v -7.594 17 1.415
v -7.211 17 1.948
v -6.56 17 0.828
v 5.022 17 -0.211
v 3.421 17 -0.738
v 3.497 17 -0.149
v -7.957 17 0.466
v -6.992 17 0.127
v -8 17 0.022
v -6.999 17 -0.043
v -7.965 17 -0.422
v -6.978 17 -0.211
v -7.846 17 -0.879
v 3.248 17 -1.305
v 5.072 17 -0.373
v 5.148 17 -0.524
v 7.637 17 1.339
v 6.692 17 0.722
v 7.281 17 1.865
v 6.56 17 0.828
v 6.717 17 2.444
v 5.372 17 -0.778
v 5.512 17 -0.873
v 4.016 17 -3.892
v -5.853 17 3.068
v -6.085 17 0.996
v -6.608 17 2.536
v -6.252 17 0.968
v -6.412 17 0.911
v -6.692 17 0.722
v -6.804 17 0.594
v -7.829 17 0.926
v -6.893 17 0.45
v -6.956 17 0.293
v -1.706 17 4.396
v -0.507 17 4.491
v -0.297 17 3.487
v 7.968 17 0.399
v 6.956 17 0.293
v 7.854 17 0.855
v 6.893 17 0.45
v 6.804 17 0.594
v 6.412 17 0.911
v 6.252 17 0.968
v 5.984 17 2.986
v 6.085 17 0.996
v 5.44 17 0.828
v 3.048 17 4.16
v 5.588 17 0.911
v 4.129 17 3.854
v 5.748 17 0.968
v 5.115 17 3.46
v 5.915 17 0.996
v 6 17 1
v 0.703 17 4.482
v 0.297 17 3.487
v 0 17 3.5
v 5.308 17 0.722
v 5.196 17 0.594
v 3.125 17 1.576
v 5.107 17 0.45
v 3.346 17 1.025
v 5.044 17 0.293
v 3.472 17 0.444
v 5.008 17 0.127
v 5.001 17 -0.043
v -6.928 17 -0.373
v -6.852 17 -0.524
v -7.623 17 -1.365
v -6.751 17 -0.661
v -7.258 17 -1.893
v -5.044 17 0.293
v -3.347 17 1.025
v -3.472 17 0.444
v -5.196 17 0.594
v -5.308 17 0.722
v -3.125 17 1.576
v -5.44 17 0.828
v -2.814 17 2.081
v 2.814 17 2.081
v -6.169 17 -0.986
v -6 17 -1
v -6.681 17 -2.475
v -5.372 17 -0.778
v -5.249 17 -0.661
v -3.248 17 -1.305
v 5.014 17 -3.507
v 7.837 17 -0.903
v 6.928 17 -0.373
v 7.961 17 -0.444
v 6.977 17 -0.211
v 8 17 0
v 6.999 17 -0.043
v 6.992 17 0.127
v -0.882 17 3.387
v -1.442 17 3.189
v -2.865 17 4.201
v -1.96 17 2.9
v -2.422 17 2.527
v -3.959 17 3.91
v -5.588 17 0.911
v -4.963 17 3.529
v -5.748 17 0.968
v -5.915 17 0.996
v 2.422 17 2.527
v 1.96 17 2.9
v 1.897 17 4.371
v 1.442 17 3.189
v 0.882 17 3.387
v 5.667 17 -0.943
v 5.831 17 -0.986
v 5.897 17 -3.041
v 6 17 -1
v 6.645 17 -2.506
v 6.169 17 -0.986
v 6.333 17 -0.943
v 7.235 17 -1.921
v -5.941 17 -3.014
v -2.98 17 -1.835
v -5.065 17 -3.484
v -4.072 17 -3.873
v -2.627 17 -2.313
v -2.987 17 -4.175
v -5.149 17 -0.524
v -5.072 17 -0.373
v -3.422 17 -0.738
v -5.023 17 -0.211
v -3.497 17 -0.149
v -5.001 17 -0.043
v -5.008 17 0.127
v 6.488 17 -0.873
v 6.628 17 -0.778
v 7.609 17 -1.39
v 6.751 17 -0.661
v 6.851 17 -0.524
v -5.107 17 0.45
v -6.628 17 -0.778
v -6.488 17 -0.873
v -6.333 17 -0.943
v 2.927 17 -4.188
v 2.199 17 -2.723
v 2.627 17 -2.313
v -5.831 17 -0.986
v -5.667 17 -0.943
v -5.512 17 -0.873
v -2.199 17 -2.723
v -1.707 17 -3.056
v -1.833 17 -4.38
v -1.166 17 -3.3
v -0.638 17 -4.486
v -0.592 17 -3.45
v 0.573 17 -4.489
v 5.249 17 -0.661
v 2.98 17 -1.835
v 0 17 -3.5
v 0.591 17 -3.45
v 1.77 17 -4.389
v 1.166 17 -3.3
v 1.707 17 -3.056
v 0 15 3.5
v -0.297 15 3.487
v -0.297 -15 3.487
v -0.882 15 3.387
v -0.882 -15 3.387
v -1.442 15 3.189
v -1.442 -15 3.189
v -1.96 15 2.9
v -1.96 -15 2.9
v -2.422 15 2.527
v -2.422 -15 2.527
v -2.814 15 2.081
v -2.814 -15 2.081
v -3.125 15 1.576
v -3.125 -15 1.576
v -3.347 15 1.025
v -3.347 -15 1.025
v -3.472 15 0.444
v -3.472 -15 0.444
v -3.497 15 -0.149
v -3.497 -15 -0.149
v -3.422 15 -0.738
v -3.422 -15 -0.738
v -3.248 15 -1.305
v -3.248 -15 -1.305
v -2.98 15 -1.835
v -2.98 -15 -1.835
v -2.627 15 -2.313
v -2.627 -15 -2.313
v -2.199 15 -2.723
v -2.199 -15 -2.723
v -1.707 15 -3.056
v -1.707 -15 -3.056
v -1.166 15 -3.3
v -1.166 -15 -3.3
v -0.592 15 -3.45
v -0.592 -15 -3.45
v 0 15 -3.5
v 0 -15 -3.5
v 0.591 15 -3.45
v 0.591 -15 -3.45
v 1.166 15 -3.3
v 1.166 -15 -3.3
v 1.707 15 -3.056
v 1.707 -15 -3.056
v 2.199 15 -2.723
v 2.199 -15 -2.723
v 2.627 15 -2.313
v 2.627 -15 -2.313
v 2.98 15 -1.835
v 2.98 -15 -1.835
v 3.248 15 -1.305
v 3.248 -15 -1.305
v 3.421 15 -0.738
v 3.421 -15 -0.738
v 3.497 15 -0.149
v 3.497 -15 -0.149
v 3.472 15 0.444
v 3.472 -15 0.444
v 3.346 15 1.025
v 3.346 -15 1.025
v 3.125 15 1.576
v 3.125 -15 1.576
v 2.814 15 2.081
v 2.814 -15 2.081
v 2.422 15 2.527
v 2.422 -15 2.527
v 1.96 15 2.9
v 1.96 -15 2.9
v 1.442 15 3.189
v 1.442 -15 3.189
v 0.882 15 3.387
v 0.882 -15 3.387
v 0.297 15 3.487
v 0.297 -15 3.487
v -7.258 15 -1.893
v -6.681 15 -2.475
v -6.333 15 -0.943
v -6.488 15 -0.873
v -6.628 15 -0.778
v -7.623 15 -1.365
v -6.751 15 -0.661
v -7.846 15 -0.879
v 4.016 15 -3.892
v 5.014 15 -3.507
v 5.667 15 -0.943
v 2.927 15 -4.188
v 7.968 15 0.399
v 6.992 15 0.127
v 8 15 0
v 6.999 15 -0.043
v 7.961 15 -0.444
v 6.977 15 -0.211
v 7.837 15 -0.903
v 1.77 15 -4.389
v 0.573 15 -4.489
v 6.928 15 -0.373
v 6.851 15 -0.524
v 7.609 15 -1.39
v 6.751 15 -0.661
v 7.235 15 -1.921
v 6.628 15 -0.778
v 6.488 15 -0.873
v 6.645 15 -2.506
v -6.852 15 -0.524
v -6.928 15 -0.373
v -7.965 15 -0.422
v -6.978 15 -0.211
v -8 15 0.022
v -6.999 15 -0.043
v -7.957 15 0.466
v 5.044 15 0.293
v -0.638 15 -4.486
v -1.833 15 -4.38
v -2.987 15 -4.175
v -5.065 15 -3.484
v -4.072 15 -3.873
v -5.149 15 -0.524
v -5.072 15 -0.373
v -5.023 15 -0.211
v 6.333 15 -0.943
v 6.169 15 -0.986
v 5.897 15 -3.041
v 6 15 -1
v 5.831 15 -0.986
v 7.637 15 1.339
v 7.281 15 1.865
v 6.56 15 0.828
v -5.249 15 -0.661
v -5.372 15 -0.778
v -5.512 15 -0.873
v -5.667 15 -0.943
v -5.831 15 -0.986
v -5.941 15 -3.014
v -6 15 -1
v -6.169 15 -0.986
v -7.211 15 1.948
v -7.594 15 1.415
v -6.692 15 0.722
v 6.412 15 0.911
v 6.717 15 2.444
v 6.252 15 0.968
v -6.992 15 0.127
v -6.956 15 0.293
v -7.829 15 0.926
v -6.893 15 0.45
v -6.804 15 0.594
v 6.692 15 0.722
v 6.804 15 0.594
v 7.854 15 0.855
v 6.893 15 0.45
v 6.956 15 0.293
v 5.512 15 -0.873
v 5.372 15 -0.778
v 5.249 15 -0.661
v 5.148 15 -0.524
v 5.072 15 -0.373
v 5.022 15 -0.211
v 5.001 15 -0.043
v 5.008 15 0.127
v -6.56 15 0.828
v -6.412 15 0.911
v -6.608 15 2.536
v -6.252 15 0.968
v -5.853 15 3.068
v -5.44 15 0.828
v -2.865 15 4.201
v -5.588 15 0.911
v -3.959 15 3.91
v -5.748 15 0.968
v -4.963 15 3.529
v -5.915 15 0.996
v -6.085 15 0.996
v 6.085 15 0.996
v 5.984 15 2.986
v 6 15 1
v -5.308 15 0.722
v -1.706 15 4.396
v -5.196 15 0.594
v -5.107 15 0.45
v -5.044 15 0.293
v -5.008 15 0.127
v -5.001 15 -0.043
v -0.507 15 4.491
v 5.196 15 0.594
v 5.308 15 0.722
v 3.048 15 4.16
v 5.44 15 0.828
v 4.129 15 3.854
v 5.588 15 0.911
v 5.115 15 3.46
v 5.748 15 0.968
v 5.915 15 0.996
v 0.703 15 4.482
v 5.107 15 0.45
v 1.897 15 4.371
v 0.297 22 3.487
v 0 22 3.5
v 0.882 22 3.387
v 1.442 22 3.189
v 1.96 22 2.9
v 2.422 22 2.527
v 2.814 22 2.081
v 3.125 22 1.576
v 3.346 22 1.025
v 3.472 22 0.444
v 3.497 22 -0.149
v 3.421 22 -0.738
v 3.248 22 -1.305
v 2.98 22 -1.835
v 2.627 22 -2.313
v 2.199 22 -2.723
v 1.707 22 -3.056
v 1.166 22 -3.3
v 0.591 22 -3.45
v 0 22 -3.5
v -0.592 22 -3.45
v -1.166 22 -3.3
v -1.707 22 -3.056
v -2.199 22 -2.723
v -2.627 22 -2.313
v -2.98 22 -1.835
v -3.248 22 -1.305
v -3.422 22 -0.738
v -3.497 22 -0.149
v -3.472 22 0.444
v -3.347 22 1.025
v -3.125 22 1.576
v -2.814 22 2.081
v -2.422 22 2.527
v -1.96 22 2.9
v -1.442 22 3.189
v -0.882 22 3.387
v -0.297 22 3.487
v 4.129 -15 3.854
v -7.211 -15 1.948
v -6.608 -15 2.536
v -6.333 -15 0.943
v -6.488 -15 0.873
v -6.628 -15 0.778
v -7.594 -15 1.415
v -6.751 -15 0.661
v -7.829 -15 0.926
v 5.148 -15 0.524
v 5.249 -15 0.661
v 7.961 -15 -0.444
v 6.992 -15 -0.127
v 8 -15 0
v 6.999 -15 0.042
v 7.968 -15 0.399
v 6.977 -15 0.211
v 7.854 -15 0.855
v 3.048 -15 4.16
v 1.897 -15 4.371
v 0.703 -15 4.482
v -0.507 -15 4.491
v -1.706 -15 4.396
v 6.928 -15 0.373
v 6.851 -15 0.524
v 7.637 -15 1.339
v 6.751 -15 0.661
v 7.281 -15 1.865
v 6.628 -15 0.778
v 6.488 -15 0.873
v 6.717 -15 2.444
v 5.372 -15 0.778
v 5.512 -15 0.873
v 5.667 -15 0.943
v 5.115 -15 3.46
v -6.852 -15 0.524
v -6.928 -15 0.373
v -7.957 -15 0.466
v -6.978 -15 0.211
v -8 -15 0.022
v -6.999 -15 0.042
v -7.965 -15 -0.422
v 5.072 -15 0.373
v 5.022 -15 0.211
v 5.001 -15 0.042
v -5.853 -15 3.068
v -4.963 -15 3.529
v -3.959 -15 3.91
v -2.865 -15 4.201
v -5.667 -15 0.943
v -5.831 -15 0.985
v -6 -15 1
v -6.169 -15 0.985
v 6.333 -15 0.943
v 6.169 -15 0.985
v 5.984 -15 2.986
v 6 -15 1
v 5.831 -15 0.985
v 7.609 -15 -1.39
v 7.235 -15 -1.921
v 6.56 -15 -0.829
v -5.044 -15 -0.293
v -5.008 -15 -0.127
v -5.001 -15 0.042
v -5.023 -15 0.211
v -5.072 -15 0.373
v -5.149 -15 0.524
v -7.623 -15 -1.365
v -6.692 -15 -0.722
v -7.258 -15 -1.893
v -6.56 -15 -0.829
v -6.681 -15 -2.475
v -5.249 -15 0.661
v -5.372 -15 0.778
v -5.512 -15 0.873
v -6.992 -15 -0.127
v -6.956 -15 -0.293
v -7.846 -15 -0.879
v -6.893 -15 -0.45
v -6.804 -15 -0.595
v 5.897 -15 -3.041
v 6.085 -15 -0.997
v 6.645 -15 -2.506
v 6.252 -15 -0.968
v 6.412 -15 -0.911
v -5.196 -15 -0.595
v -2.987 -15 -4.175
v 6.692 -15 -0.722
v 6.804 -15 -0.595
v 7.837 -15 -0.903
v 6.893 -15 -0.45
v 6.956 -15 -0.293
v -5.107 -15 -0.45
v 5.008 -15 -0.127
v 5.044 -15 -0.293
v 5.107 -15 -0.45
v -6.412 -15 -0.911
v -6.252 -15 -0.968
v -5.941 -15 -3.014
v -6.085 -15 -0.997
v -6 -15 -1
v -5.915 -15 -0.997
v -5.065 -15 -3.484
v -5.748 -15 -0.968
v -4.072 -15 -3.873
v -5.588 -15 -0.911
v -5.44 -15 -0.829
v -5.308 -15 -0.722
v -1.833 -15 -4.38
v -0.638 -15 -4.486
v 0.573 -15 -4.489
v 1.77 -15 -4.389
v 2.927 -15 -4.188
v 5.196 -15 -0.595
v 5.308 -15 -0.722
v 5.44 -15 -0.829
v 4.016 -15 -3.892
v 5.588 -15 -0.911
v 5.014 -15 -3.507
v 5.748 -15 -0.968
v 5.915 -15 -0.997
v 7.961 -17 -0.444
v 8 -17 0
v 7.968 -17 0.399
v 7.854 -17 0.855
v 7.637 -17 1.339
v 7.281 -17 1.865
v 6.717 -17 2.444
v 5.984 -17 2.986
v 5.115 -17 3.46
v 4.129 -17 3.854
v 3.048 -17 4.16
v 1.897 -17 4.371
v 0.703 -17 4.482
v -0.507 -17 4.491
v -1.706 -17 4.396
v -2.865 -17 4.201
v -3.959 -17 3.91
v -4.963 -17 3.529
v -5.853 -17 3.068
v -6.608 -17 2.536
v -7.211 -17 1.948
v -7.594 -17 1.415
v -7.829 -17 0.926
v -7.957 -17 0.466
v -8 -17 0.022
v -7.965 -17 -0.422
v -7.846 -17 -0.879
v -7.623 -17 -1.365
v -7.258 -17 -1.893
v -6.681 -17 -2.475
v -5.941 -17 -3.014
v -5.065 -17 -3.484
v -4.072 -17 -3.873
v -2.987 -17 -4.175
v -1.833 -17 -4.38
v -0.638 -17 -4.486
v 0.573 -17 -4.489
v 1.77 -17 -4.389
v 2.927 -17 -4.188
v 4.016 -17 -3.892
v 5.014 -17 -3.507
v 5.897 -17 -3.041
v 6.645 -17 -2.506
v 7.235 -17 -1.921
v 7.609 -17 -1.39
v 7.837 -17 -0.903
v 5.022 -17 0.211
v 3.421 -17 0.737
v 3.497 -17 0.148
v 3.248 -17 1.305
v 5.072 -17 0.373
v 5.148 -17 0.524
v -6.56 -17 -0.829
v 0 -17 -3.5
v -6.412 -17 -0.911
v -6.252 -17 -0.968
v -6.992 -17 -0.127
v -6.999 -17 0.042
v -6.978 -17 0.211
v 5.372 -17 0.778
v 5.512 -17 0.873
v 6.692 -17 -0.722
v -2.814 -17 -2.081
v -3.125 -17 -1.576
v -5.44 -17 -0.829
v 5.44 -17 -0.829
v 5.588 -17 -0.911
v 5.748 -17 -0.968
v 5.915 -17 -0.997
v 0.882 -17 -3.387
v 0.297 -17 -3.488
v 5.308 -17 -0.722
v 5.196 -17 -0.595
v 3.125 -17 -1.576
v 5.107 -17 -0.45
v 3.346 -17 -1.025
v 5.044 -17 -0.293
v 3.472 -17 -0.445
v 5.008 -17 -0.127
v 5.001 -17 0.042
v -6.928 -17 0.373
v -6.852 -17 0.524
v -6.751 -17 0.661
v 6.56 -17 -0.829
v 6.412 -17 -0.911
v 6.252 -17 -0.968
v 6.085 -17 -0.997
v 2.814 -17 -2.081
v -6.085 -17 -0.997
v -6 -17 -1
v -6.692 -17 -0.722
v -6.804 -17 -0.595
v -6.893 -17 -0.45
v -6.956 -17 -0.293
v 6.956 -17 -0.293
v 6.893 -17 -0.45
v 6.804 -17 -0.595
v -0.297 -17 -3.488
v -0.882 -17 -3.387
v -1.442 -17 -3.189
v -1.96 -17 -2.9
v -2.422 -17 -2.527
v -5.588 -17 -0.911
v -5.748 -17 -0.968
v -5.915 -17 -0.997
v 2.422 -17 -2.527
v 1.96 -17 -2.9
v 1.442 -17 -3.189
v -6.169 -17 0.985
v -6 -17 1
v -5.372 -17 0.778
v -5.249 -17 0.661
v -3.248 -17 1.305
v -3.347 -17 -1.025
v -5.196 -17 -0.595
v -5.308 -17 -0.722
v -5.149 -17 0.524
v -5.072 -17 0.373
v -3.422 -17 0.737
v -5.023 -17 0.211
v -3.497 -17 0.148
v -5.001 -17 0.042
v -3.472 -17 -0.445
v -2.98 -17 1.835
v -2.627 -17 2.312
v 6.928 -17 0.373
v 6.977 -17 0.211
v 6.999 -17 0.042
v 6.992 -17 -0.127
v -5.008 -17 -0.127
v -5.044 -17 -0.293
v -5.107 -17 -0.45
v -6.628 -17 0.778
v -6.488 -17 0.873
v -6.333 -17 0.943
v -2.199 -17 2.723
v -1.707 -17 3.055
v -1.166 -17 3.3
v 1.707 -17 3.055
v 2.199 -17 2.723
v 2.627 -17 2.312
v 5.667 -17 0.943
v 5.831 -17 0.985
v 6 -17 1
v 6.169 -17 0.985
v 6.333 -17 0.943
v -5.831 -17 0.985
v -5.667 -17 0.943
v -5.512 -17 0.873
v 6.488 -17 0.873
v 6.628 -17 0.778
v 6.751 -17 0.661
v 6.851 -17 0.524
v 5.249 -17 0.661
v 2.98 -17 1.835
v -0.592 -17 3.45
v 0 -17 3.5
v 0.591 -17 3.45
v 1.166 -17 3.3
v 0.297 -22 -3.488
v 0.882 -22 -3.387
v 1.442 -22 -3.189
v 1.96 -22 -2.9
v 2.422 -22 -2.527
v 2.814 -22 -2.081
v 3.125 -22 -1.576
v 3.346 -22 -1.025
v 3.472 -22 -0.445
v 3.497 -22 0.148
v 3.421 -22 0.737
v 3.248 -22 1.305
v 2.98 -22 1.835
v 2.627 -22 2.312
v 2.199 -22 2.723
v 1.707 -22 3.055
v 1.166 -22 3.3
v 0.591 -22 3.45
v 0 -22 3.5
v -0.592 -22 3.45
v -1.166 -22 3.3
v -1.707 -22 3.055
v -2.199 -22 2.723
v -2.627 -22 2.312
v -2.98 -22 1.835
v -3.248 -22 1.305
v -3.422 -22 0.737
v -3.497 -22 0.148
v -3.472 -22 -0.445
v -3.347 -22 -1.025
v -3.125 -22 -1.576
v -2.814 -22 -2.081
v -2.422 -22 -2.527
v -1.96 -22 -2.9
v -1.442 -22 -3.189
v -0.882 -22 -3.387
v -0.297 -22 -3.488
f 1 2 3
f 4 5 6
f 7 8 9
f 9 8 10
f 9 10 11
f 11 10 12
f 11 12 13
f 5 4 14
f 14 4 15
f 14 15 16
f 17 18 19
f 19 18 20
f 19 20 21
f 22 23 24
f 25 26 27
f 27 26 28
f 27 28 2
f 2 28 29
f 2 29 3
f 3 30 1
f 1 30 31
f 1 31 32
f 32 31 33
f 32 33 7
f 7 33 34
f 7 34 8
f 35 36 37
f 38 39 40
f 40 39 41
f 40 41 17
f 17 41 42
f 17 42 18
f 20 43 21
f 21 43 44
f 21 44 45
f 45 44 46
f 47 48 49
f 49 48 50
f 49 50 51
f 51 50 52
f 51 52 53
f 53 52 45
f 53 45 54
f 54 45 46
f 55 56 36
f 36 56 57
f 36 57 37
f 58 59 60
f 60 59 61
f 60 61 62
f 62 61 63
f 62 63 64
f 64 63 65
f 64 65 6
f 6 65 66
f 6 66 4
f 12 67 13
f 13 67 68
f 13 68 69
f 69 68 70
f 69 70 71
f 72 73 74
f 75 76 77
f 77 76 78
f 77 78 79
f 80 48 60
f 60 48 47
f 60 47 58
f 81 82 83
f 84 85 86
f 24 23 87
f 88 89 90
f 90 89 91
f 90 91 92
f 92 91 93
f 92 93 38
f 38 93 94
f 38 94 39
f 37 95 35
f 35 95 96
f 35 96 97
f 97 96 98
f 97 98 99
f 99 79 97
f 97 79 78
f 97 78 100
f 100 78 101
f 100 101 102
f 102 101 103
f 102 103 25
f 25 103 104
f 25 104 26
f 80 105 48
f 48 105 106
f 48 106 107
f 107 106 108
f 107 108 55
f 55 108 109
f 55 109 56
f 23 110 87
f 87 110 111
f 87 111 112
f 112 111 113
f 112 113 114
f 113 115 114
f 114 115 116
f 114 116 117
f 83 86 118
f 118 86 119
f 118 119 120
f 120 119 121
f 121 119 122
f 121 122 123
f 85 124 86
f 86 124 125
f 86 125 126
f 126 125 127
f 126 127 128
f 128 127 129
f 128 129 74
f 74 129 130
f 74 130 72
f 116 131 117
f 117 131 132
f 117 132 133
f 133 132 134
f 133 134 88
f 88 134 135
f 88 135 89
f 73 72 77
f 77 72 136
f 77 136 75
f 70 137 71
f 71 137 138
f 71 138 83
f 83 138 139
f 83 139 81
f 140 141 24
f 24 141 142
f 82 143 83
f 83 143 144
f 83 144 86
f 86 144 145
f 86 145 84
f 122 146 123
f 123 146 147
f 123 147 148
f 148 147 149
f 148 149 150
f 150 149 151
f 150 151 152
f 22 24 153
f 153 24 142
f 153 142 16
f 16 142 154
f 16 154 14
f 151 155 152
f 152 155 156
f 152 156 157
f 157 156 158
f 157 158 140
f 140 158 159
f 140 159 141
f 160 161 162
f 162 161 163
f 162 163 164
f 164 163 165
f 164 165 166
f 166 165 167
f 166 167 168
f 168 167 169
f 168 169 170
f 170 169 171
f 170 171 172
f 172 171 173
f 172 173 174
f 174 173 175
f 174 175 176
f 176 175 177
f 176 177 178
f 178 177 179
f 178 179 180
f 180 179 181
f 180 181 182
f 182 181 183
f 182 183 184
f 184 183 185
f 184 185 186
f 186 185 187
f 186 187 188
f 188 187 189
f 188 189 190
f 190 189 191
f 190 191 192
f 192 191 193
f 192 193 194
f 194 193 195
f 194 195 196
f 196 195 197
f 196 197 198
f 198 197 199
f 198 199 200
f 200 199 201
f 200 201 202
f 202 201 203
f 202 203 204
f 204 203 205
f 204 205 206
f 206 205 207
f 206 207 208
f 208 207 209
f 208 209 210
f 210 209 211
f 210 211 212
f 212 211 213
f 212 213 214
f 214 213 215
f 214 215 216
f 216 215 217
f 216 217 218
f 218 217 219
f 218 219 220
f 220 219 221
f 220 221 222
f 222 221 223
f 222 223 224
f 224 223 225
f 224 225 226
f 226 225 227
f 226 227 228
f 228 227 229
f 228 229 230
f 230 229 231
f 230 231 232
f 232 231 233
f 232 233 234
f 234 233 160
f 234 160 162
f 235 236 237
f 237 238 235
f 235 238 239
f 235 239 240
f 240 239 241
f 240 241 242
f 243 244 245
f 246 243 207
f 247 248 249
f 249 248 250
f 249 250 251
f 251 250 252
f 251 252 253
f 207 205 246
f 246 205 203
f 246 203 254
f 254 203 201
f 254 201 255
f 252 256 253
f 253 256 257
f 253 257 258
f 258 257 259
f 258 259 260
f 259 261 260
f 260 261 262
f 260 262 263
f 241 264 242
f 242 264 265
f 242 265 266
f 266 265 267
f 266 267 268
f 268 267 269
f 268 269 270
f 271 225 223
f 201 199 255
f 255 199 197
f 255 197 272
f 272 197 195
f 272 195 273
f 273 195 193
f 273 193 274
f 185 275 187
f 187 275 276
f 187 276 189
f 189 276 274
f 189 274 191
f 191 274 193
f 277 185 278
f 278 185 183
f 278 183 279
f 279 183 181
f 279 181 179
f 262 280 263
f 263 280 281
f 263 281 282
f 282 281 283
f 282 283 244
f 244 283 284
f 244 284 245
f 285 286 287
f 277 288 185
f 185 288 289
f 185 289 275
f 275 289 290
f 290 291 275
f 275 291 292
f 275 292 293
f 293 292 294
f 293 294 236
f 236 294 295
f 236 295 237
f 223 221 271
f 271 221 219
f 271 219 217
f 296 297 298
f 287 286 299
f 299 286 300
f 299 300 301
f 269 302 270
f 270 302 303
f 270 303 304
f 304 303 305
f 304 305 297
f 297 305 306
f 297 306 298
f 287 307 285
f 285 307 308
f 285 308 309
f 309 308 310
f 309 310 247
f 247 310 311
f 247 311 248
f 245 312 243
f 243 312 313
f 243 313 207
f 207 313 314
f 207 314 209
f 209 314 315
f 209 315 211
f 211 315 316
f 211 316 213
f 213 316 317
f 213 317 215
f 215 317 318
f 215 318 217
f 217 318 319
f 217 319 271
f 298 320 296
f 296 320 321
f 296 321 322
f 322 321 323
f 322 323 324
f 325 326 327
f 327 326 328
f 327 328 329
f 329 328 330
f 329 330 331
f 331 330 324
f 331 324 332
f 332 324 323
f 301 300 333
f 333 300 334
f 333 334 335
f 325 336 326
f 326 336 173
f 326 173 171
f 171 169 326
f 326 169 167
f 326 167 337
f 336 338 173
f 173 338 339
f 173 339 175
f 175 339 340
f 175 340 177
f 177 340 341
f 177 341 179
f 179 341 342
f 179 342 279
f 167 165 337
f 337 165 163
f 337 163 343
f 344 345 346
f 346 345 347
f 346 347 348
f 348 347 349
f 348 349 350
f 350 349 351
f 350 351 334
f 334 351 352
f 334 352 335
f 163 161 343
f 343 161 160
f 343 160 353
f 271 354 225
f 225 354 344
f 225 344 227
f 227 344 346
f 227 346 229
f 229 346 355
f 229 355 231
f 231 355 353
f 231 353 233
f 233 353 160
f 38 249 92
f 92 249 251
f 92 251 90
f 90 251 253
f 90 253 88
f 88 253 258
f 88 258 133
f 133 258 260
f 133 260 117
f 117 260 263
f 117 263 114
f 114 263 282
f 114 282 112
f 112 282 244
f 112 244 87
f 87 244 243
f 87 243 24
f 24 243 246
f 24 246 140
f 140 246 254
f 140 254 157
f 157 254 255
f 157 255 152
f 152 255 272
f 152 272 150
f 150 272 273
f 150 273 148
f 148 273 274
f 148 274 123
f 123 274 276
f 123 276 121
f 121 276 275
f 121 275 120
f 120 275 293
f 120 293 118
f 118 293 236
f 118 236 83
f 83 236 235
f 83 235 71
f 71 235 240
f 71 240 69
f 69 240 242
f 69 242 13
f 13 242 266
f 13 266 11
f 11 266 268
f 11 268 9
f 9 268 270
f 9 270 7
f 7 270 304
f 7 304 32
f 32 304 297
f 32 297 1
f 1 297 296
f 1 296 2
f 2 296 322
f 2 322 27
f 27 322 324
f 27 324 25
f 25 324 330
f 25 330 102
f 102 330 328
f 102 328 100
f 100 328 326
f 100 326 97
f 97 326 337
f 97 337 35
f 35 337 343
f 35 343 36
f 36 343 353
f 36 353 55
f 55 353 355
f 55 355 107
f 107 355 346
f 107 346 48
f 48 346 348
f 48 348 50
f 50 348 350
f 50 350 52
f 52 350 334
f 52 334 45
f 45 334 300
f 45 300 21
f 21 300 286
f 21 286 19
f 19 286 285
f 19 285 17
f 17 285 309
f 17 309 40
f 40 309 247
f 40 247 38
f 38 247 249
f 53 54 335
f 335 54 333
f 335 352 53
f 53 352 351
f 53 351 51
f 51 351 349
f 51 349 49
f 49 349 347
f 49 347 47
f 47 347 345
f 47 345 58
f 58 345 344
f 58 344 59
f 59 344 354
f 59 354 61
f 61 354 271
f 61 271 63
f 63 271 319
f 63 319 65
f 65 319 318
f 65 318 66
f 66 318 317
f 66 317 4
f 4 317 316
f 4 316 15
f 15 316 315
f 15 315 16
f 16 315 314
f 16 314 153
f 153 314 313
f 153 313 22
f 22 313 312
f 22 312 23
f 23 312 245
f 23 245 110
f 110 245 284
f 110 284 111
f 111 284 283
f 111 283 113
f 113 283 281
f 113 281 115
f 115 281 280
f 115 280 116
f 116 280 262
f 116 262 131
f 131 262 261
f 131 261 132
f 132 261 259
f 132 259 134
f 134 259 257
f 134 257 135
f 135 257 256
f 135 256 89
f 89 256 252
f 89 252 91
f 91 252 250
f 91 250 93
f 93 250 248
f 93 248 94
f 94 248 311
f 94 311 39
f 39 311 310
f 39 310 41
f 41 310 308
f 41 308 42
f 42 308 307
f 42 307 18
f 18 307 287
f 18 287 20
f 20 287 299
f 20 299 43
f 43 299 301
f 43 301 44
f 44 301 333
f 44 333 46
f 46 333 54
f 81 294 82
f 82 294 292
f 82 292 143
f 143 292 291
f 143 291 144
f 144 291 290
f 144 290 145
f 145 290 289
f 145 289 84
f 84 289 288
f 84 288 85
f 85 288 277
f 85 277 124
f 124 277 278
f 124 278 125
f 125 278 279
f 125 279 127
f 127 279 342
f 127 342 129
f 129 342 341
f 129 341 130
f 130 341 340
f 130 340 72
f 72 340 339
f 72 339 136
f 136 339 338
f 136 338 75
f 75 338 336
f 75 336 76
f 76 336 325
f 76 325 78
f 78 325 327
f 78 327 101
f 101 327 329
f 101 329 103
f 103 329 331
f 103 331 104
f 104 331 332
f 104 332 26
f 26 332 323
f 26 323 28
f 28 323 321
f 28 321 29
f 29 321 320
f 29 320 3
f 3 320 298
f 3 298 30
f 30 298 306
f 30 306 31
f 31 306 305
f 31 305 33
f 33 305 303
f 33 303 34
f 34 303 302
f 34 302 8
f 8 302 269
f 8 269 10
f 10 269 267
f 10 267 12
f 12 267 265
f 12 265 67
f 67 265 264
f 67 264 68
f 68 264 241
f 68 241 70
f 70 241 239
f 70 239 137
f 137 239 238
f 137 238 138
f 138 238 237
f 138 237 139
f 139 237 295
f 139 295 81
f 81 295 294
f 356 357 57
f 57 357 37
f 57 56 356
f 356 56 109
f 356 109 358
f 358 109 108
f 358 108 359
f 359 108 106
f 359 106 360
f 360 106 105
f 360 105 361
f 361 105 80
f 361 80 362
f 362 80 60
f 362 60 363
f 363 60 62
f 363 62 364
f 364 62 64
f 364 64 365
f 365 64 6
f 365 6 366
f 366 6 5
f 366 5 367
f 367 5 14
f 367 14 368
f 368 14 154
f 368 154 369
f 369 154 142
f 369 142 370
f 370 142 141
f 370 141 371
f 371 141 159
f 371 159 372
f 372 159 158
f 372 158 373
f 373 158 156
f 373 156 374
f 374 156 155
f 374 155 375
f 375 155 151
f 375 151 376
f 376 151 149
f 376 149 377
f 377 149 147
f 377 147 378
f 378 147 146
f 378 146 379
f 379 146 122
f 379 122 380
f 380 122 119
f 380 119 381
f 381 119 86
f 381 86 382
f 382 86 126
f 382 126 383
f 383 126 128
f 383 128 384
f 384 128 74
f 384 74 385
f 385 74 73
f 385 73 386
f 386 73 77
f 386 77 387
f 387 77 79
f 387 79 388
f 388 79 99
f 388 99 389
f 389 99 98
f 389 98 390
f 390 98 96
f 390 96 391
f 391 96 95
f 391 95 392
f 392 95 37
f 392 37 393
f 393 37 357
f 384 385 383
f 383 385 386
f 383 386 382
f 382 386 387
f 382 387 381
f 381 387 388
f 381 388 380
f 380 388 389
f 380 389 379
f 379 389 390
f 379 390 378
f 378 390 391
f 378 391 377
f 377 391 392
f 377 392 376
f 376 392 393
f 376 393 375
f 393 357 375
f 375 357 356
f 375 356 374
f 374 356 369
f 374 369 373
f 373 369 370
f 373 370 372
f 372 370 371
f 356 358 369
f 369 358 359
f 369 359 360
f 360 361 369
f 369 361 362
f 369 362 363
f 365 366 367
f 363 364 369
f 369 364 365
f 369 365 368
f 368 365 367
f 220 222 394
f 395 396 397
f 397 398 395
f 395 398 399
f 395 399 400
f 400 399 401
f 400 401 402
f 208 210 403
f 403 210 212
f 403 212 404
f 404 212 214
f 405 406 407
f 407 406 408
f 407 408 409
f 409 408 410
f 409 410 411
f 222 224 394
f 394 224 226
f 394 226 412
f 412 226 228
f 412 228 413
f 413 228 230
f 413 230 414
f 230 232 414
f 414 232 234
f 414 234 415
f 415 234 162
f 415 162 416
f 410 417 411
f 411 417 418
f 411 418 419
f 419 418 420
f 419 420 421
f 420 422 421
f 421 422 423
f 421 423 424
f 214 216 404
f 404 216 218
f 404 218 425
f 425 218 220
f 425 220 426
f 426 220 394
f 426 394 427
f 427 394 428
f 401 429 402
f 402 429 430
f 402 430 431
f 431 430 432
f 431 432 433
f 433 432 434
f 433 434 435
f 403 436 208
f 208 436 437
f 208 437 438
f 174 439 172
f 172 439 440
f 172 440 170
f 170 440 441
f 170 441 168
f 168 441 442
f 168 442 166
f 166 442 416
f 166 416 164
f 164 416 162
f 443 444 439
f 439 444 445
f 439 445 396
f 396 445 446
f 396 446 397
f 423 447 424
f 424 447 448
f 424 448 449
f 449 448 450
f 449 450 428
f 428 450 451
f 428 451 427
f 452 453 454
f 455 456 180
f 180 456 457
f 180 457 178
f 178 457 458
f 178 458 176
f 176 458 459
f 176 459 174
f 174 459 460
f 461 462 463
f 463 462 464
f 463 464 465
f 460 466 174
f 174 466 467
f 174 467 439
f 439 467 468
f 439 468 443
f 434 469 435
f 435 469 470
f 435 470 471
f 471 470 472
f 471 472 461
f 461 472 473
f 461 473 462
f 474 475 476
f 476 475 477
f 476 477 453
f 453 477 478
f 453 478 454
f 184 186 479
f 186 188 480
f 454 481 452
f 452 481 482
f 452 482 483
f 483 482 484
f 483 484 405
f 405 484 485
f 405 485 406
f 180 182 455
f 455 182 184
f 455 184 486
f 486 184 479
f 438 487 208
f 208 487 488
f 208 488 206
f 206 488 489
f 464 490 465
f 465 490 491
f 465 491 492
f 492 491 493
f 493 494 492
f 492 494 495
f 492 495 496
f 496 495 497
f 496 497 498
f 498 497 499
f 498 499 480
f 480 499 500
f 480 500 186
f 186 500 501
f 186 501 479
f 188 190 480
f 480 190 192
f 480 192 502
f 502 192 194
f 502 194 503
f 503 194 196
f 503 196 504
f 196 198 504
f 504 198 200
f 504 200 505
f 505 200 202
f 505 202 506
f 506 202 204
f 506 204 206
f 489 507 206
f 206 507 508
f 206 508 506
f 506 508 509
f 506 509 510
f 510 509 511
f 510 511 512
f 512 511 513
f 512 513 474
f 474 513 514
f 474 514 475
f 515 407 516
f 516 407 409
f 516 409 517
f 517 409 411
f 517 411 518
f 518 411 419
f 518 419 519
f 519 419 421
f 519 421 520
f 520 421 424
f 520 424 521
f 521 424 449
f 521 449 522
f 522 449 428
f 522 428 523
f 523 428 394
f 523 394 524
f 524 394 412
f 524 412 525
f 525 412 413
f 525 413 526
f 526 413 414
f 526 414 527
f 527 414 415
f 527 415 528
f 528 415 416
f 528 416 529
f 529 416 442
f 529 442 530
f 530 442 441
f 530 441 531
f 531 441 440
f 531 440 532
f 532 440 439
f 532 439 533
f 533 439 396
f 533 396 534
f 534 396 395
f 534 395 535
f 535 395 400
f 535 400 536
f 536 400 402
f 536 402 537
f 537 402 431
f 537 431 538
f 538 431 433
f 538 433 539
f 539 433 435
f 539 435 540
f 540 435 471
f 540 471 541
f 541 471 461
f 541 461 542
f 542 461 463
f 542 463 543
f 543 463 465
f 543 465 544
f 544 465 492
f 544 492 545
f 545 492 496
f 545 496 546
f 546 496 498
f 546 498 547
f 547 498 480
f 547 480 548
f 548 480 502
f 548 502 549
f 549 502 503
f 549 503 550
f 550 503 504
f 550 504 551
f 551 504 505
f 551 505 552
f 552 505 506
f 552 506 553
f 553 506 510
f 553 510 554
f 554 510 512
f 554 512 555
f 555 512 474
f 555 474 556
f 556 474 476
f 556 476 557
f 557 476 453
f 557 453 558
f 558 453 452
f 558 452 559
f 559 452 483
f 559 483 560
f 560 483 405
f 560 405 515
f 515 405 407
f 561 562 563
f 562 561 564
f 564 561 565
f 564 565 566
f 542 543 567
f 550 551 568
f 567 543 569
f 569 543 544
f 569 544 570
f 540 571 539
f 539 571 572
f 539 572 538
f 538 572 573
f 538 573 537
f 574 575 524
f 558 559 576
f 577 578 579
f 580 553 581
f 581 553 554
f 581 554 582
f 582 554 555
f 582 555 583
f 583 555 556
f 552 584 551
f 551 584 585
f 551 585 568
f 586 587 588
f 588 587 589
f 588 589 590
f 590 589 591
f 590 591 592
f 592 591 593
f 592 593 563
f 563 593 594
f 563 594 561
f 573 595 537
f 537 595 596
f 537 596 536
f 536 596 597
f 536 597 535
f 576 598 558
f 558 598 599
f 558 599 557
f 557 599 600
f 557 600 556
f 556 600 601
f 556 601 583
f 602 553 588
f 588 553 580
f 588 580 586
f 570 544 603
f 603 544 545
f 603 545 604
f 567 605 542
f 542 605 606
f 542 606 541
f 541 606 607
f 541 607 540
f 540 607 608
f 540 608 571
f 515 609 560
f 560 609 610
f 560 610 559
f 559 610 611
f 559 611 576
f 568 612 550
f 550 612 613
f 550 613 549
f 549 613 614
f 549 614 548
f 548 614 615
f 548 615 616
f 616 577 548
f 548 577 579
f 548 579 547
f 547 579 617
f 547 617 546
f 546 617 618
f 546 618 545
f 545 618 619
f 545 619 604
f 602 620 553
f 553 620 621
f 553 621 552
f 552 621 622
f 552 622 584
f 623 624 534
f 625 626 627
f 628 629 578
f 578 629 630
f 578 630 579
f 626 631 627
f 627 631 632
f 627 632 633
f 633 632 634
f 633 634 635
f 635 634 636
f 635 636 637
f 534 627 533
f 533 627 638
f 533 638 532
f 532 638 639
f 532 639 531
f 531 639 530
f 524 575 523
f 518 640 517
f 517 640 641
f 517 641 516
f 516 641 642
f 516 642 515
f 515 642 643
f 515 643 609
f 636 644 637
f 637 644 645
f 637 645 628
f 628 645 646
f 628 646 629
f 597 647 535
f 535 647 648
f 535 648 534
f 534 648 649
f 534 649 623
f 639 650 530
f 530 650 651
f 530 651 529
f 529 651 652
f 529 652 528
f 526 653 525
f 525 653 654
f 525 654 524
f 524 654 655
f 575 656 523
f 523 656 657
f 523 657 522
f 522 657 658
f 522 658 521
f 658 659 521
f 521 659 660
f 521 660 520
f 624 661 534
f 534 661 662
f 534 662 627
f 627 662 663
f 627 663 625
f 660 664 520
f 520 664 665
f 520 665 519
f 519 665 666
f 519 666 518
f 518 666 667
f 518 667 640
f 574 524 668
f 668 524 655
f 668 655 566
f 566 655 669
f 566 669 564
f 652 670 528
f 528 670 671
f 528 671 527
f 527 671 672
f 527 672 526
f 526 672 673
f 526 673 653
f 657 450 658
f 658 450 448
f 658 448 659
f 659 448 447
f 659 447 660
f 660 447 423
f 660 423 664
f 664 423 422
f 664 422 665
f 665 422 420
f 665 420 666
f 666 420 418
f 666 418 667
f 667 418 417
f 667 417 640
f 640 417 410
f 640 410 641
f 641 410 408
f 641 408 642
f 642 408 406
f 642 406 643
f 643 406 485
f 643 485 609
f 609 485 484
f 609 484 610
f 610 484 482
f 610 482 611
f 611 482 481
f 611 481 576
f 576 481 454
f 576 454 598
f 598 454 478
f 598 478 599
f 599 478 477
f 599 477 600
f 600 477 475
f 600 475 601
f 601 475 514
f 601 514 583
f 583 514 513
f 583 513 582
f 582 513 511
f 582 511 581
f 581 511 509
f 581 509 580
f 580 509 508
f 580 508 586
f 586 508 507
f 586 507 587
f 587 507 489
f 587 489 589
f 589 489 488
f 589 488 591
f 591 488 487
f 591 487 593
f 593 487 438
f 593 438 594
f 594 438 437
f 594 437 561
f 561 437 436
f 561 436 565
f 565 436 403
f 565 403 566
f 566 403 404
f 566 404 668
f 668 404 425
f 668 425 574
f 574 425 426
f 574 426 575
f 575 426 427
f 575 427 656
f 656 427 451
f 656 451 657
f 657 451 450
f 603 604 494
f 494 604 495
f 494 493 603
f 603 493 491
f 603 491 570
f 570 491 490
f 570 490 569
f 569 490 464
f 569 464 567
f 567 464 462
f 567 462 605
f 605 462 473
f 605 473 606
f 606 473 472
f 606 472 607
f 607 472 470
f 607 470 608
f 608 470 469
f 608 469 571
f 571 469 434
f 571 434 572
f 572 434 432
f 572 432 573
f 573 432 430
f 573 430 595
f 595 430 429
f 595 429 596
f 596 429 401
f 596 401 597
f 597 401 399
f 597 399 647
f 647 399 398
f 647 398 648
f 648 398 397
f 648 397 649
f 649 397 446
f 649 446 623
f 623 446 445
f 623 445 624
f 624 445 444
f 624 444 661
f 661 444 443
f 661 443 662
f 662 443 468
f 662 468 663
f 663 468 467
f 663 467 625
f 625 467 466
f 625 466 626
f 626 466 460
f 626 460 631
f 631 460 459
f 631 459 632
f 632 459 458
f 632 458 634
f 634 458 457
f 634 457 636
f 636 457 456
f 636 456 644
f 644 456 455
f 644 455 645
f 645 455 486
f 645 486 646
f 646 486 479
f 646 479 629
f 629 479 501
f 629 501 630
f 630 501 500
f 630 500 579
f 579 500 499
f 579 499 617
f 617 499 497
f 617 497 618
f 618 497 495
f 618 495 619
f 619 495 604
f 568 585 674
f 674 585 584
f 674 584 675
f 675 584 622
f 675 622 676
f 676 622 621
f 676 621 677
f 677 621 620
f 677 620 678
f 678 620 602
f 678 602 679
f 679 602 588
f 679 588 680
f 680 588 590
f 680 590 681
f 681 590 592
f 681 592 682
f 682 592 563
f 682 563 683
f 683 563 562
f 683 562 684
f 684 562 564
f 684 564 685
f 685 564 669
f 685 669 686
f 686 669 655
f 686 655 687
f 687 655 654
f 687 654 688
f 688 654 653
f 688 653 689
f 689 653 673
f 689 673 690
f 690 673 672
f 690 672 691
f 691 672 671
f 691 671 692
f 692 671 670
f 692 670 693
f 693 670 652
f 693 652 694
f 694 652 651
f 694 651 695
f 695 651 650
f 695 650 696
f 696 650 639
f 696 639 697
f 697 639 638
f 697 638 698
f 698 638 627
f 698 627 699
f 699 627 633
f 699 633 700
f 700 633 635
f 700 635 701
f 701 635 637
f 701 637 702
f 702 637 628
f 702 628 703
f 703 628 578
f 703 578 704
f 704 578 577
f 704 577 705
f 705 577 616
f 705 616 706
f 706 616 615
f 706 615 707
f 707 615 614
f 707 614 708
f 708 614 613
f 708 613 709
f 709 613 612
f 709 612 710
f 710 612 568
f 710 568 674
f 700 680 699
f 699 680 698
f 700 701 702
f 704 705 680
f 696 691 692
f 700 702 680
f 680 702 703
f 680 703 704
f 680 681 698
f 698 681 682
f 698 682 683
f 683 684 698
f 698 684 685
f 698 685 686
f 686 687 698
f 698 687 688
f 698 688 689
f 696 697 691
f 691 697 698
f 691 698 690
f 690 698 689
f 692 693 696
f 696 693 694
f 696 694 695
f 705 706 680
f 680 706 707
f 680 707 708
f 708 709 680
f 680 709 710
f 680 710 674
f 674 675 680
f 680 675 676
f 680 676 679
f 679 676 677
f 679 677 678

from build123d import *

# Parameters (mm, degrees)
ESQUISSE1_R        = 3.5
BOSS_EXTRU_1_DEPTH = 15
ESQUISSE2_RX       = 8
ESQUISSE2_RY       = 4.5
ESQUISSE2_R        = 1
BOSS_EXTRU_2_DEPTH = 2
ESQUISSE4_R        = 3.5
BOSS_EXTRU_3_DEPTH = 5


with BuildPart() as part:
    # Esquisse1 → Boss.-Extru.1 (new body)
    with BuildSketch(Plane(origin=(0, 0, 0), x_dir=(1, 0, 0), z_dir=(0, 1, 0))):
        Circle(ESQUISSE1_R)
    boss_extru_1 = extrude(amount=BOSS_EXTRU_1_DEPTH)

    # Esquisse2 → Boss.-Extru.2 (add)
    with BuildSketch(Plane(origin=(0, 15, 0), x_dir=(1, 0, 0), z_dir=(0, 1, 0))):
        with Locations((0, 0)):
            Ellipse(ESQUISSE2_RX, ESQUISSE2_RY)
        with Locations((6, 0)):
            Circle(ESQUISSE2_R, mode=Mode.SUBTRACT)
        with Locations((-6, 0)):
            Circle(ESQUISSE2_R, mode=Mode.SUBTRACT)
    boss_extru_2 = extrude(amount=BOSS_EXTRU_2_DEPTH)

    # Esquisse4 → Boss.-Extru.3 (add)
    with BuildSketch(Plane(origin=(0, 17, 0), x_dir=(1, 0, 0), z_dir=(0, 1, 0))):
        Circle(ESQUISSE4_R)
    boss_extru_3 = extrude(amount=BOSS_EXTRU_3_DEPTH)

    # Symétrie1: Boss.-Extru.1, Boss.-Extru.2, Boss.-Extru.3 across plane
    add(boss_extru_1.mirror(Plane.ZX))
    add(boss_extru_2.mirror(Plane.ZX))
    add(boss_extru_3.mirror(Plane.ZX))


solid = part.part
